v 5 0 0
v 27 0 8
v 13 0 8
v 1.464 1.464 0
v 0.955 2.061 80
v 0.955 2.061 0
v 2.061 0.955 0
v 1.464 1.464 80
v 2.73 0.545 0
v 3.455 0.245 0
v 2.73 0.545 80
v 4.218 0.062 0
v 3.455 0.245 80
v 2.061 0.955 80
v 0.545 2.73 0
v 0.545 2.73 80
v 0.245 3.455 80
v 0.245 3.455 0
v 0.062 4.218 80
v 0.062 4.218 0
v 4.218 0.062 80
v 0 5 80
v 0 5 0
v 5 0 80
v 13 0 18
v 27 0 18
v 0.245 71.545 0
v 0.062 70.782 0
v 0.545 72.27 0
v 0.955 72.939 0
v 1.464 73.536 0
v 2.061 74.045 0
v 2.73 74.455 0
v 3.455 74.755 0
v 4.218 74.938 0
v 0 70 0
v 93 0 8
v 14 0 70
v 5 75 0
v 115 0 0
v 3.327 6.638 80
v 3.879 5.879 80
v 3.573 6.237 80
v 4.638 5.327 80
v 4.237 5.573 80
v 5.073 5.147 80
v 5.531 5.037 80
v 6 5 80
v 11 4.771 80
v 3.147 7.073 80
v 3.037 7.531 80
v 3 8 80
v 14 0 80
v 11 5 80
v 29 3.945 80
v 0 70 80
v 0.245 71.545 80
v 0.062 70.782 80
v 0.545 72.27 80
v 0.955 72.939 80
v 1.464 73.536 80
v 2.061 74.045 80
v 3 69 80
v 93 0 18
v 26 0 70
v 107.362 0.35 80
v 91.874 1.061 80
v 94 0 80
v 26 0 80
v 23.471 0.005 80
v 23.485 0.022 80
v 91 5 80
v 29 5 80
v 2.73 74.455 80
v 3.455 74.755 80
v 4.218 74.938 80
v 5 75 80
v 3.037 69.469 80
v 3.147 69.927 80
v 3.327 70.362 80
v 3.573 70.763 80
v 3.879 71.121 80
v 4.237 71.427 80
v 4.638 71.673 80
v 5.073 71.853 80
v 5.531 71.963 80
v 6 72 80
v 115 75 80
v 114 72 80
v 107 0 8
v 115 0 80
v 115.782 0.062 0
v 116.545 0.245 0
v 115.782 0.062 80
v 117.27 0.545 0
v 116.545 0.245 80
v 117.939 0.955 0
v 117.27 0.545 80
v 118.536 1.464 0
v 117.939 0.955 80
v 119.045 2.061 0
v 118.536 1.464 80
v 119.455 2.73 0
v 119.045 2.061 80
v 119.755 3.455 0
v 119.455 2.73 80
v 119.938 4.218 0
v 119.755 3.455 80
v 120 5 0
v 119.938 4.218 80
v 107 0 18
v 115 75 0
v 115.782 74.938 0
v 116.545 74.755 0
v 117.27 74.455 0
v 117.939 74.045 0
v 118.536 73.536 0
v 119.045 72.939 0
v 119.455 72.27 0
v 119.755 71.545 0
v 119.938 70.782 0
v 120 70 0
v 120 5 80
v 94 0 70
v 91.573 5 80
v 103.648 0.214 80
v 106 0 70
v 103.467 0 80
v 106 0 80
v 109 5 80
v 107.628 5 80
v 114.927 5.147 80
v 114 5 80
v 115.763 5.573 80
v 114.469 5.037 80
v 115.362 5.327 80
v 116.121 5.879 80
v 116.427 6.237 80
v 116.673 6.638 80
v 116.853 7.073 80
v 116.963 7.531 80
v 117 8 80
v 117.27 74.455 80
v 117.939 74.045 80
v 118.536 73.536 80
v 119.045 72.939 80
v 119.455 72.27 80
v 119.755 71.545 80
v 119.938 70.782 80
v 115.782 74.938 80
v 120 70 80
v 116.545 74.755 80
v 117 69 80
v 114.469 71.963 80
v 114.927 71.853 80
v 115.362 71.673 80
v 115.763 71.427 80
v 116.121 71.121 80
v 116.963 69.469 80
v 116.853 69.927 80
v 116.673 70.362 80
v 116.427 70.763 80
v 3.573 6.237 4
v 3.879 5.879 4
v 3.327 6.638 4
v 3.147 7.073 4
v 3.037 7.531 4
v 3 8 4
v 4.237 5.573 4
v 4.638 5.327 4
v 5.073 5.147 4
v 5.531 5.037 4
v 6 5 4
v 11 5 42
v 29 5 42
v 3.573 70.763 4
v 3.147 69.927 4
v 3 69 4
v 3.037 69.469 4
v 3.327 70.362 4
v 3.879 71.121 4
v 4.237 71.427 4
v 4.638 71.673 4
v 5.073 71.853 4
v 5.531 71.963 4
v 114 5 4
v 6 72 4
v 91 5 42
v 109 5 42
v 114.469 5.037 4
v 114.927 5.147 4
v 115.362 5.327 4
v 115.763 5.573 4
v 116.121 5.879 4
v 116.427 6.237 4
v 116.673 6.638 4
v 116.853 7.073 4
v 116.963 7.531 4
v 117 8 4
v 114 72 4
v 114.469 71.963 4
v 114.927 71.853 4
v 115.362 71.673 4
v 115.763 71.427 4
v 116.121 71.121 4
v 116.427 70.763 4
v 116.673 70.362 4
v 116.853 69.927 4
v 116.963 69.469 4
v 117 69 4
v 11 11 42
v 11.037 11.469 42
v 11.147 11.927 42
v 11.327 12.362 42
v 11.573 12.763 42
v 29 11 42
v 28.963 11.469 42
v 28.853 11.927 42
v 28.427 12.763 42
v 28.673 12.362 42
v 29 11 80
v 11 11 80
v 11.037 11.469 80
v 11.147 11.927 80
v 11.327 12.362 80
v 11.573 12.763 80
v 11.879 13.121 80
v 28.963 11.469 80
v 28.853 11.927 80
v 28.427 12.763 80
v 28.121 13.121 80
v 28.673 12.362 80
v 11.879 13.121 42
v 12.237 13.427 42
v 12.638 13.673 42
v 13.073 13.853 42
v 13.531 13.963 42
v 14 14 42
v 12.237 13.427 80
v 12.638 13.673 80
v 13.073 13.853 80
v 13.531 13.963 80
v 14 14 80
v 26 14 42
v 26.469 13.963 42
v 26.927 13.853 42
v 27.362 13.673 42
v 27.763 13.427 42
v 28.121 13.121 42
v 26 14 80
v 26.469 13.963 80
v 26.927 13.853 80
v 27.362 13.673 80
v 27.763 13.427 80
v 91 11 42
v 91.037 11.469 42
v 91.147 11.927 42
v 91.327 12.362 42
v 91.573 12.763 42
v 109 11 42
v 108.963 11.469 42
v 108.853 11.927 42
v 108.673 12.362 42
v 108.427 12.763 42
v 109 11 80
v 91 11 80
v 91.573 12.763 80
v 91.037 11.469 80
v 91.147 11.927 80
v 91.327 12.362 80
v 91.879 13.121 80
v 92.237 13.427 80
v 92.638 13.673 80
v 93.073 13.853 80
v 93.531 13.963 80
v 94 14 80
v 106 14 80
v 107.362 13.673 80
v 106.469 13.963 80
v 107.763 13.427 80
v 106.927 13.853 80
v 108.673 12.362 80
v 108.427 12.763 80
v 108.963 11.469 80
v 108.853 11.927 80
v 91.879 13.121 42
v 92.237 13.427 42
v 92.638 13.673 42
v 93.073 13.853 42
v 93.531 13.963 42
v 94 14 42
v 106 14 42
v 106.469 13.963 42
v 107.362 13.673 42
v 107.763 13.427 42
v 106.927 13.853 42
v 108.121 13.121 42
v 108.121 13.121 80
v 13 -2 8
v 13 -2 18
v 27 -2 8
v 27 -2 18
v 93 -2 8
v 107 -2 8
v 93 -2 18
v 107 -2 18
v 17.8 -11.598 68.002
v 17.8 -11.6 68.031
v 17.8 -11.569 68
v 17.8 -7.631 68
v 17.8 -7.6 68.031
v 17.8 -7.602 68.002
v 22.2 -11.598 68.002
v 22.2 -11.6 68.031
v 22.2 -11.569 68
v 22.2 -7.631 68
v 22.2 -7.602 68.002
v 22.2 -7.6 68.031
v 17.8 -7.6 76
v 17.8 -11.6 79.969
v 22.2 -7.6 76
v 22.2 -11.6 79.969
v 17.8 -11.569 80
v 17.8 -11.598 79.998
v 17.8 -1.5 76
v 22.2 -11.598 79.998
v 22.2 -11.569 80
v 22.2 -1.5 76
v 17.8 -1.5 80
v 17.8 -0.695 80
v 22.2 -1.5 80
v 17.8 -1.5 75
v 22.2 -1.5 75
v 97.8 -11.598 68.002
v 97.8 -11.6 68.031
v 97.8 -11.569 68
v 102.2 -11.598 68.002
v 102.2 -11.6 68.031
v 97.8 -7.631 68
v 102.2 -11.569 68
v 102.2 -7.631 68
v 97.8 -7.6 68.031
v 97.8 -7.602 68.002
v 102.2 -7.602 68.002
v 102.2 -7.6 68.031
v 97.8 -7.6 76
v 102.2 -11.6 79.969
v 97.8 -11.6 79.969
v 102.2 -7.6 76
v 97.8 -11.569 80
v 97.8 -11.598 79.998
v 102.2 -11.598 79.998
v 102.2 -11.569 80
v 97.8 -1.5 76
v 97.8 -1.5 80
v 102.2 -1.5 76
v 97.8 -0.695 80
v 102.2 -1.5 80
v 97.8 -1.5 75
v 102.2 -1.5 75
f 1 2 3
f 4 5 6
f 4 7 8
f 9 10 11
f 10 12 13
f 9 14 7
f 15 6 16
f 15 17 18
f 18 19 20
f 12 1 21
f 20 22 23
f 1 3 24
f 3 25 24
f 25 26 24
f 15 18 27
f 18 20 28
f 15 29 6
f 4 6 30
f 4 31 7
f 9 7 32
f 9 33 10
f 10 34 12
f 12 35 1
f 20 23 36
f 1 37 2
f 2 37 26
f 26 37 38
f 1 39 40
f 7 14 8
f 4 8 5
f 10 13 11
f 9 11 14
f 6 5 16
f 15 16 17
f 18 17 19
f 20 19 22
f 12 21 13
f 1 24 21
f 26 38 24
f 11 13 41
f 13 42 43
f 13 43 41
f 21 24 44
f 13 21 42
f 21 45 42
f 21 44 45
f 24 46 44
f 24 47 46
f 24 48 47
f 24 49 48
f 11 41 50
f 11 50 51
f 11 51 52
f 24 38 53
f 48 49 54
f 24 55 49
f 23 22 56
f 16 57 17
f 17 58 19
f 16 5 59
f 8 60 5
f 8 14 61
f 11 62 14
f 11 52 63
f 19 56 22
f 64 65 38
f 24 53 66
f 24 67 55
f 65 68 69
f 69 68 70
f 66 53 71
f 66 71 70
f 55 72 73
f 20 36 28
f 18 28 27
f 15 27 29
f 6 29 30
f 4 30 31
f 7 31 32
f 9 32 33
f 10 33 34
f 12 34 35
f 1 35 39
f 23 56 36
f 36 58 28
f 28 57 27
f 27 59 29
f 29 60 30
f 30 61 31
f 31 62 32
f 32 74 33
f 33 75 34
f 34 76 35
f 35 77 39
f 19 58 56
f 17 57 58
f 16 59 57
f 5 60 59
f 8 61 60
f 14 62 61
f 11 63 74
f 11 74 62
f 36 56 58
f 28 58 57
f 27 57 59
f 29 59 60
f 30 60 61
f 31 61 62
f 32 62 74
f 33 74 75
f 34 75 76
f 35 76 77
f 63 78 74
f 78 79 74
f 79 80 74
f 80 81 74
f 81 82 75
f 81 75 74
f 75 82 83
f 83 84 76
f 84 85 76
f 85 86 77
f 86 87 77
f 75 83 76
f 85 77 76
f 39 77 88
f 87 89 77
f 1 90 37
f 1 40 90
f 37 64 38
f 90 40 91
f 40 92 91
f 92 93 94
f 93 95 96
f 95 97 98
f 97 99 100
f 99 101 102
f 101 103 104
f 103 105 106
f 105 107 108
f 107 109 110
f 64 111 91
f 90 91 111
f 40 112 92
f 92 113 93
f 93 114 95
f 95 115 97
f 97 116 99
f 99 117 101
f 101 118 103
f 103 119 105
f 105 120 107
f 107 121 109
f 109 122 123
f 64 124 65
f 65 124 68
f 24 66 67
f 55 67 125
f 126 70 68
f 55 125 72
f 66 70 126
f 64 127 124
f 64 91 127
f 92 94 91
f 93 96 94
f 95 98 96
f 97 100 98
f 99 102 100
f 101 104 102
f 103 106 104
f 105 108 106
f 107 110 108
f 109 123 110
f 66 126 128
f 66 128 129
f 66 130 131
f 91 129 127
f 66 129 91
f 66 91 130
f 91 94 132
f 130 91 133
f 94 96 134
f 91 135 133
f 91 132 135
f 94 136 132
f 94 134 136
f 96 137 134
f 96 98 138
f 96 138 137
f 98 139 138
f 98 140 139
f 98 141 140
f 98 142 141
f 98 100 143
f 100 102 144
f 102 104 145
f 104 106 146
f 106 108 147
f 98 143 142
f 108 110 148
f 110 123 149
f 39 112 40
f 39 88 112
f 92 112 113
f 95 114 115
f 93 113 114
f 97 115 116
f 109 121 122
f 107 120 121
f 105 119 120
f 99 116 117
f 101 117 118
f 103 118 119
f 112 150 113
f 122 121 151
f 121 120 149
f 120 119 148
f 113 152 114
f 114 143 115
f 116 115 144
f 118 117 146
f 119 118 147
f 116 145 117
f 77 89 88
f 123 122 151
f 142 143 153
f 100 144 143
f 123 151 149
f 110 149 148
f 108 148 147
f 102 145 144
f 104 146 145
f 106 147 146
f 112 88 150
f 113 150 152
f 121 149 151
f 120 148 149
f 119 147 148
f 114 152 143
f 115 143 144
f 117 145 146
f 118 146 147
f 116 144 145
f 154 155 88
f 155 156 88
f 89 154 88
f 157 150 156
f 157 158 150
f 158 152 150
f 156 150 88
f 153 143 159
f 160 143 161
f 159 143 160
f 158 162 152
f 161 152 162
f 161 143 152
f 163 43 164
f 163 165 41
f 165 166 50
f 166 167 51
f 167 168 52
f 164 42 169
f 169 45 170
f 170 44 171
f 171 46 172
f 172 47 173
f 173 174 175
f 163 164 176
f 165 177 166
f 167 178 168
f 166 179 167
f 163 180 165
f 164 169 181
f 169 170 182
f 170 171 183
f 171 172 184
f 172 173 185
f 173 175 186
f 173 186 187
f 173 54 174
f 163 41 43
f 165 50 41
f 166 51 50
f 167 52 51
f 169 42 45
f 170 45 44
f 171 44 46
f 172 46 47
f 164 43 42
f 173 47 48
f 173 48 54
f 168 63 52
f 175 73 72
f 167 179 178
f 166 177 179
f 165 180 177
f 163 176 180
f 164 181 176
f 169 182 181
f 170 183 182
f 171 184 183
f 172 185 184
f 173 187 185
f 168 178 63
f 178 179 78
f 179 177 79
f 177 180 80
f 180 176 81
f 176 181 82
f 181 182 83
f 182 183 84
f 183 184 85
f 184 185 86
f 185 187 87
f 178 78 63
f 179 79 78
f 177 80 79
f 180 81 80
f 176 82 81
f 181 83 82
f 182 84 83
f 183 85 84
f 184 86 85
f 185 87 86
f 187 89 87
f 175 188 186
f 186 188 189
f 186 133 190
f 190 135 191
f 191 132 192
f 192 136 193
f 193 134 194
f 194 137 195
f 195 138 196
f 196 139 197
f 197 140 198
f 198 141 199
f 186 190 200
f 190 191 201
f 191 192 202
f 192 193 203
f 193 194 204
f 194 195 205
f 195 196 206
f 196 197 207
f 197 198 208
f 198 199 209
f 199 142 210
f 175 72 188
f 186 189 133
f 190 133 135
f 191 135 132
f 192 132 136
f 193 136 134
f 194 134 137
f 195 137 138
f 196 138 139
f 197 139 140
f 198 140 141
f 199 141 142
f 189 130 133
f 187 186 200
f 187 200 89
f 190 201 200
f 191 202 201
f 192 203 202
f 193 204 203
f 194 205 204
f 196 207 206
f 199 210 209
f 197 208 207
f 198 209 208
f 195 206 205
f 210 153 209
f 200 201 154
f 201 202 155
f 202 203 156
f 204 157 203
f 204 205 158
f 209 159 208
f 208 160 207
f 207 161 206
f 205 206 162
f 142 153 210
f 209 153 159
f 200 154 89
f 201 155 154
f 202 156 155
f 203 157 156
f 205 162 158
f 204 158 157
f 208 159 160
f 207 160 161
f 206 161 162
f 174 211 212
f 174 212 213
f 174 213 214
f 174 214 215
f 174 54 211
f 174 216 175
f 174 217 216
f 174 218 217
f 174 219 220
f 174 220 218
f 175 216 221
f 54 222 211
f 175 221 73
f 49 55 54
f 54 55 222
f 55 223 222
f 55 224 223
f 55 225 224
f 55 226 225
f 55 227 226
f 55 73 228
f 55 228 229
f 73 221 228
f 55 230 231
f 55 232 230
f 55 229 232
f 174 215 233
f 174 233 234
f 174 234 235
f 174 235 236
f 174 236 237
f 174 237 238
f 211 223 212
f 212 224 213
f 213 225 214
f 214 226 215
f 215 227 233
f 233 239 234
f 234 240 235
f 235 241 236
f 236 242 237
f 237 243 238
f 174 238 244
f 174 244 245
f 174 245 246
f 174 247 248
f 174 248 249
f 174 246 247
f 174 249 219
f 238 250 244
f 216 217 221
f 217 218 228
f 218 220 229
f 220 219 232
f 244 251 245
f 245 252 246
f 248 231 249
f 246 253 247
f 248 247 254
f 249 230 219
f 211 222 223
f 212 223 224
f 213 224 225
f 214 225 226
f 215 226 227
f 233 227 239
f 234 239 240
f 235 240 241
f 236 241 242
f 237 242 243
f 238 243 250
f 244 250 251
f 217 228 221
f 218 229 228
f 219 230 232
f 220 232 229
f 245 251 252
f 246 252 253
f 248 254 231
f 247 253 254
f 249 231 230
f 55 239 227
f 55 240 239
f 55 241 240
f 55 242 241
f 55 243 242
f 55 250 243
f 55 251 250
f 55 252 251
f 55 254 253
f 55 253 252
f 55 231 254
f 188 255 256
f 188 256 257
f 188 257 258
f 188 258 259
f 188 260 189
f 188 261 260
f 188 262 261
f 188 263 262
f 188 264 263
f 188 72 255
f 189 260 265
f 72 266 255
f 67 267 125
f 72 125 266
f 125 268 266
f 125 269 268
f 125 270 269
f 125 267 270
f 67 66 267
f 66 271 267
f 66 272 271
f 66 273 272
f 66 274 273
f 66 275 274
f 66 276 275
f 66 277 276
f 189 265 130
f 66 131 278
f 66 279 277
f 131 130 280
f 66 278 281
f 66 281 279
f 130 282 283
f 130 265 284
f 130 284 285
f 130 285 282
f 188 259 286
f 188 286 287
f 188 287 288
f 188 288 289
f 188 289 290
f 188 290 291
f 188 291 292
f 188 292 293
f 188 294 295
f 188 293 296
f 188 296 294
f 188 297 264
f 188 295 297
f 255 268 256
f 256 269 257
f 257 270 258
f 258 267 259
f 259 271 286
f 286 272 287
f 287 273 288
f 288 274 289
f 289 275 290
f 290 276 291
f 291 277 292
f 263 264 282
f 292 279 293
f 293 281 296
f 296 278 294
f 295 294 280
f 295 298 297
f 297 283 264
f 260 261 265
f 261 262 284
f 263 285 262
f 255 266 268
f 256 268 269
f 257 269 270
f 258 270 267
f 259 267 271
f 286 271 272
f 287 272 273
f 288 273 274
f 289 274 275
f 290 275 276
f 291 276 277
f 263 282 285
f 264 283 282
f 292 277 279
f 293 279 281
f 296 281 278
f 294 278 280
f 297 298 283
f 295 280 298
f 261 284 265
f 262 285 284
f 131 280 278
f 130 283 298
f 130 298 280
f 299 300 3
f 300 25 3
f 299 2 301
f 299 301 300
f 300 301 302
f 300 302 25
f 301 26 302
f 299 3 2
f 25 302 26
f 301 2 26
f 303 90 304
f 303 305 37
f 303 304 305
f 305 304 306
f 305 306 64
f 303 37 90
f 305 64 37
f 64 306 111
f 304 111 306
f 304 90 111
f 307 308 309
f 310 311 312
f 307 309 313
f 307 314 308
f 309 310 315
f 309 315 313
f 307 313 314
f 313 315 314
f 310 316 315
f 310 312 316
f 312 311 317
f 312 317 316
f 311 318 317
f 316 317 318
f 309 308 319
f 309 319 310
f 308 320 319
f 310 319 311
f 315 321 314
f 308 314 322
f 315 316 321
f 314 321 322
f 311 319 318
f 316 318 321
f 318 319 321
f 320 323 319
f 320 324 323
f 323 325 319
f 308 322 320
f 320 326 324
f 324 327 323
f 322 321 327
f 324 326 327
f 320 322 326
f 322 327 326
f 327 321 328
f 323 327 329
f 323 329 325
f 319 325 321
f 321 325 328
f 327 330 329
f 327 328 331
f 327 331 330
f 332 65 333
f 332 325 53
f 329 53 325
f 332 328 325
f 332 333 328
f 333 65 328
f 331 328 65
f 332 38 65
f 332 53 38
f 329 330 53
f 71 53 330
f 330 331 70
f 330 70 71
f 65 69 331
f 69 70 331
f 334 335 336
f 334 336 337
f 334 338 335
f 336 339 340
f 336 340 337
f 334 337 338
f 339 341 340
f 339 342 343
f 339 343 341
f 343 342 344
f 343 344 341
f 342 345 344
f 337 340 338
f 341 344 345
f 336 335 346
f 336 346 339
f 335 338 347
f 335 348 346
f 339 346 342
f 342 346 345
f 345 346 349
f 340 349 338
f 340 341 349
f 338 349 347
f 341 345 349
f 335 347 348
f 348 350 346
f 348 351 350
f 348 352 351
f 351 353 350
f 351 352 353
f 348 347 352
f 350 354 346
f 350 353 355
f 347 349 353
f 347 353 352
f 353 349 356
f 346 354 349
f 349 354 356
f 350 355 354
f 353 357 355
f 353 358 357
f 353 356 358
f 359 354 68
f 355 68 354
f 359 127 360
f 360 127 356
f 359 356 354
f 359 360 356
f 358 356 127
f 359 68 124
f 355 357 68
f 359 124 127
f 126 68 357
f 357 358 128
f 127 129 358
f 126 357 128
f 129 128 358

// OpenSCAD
// SKADIS one-piece box: integral reinforced hooks, no screws.
// Print upright with local supports under both hook overhangs.
part = 0; // One-piece model; retained for export script compatibility.
width = 120;
depth = 75;
height = 80;
hook_width = 4.4;
socket_clearance = 0.25;
$fn = 40;
module rr(w,d,r) { hull() for(x=[r,w-r]) for(y=[r,d-r]) translate([x,y]) circle(r=r); }
module body() {
 difference() {
  union() {
   difference() {
    linear_extrude(height) rr(width,depth,5);
    translate([3,5,4]) linear_extrude(height) rr(width-6,depth-8,3);
   }
   for(x=[20,100]) translate([x-9,0,42]) linear_extrude(38) rr(18,14,3);
   for(x=[20,100]) translate([x-7,-2,8]) cube([14,3,10]);
  }

 }
}
// Profile is in board-normal / vertical axes. Rounded inside elbow spreads stress.
// Board occupies y=-7..-2; inner hook face y=-7.6 gives 0.6 mm clearance.
module hook_profile() {
 offset(delta=-0.8) offset(r=0.8) union() {
  translate([2,49]) square([8,30]);
  translate([-11.6,76]) square([21.6,4]);
  translate([-11.6,68]) square([4,12]);
  polygon([[-1.5,76],[2,72],[5,76]]);
 }
}
module hook_print() { translate([12,-49,0]) linear_extrude(hook_width) hook_profile(); }
module hook_mounted(x) {
 translate([x-hook_width/2,0,0])
 multmatrix([[0,0,1,0],[1,0,0,0],[0,1,0,0],[0,0,0,1]]) linear_extrude(hook_width) hook_profile();
}
// One-piece load path: no removable sockets or fasteners.
module integrated() {
 union() {
  body();
  for(x=[20,100]) {
   hook_mounted(x);
   // Broad root stays in front of board face (y=-2).
   hull() {
    translate([x-6,0,70]) cube([12,3,10]);
    translate([x-hook_width/2,-1.5,75]) cube([hook_width,3.5,5]);
   }
  }
 }
}
color([0.18,0.55,0.64]) integrated();
